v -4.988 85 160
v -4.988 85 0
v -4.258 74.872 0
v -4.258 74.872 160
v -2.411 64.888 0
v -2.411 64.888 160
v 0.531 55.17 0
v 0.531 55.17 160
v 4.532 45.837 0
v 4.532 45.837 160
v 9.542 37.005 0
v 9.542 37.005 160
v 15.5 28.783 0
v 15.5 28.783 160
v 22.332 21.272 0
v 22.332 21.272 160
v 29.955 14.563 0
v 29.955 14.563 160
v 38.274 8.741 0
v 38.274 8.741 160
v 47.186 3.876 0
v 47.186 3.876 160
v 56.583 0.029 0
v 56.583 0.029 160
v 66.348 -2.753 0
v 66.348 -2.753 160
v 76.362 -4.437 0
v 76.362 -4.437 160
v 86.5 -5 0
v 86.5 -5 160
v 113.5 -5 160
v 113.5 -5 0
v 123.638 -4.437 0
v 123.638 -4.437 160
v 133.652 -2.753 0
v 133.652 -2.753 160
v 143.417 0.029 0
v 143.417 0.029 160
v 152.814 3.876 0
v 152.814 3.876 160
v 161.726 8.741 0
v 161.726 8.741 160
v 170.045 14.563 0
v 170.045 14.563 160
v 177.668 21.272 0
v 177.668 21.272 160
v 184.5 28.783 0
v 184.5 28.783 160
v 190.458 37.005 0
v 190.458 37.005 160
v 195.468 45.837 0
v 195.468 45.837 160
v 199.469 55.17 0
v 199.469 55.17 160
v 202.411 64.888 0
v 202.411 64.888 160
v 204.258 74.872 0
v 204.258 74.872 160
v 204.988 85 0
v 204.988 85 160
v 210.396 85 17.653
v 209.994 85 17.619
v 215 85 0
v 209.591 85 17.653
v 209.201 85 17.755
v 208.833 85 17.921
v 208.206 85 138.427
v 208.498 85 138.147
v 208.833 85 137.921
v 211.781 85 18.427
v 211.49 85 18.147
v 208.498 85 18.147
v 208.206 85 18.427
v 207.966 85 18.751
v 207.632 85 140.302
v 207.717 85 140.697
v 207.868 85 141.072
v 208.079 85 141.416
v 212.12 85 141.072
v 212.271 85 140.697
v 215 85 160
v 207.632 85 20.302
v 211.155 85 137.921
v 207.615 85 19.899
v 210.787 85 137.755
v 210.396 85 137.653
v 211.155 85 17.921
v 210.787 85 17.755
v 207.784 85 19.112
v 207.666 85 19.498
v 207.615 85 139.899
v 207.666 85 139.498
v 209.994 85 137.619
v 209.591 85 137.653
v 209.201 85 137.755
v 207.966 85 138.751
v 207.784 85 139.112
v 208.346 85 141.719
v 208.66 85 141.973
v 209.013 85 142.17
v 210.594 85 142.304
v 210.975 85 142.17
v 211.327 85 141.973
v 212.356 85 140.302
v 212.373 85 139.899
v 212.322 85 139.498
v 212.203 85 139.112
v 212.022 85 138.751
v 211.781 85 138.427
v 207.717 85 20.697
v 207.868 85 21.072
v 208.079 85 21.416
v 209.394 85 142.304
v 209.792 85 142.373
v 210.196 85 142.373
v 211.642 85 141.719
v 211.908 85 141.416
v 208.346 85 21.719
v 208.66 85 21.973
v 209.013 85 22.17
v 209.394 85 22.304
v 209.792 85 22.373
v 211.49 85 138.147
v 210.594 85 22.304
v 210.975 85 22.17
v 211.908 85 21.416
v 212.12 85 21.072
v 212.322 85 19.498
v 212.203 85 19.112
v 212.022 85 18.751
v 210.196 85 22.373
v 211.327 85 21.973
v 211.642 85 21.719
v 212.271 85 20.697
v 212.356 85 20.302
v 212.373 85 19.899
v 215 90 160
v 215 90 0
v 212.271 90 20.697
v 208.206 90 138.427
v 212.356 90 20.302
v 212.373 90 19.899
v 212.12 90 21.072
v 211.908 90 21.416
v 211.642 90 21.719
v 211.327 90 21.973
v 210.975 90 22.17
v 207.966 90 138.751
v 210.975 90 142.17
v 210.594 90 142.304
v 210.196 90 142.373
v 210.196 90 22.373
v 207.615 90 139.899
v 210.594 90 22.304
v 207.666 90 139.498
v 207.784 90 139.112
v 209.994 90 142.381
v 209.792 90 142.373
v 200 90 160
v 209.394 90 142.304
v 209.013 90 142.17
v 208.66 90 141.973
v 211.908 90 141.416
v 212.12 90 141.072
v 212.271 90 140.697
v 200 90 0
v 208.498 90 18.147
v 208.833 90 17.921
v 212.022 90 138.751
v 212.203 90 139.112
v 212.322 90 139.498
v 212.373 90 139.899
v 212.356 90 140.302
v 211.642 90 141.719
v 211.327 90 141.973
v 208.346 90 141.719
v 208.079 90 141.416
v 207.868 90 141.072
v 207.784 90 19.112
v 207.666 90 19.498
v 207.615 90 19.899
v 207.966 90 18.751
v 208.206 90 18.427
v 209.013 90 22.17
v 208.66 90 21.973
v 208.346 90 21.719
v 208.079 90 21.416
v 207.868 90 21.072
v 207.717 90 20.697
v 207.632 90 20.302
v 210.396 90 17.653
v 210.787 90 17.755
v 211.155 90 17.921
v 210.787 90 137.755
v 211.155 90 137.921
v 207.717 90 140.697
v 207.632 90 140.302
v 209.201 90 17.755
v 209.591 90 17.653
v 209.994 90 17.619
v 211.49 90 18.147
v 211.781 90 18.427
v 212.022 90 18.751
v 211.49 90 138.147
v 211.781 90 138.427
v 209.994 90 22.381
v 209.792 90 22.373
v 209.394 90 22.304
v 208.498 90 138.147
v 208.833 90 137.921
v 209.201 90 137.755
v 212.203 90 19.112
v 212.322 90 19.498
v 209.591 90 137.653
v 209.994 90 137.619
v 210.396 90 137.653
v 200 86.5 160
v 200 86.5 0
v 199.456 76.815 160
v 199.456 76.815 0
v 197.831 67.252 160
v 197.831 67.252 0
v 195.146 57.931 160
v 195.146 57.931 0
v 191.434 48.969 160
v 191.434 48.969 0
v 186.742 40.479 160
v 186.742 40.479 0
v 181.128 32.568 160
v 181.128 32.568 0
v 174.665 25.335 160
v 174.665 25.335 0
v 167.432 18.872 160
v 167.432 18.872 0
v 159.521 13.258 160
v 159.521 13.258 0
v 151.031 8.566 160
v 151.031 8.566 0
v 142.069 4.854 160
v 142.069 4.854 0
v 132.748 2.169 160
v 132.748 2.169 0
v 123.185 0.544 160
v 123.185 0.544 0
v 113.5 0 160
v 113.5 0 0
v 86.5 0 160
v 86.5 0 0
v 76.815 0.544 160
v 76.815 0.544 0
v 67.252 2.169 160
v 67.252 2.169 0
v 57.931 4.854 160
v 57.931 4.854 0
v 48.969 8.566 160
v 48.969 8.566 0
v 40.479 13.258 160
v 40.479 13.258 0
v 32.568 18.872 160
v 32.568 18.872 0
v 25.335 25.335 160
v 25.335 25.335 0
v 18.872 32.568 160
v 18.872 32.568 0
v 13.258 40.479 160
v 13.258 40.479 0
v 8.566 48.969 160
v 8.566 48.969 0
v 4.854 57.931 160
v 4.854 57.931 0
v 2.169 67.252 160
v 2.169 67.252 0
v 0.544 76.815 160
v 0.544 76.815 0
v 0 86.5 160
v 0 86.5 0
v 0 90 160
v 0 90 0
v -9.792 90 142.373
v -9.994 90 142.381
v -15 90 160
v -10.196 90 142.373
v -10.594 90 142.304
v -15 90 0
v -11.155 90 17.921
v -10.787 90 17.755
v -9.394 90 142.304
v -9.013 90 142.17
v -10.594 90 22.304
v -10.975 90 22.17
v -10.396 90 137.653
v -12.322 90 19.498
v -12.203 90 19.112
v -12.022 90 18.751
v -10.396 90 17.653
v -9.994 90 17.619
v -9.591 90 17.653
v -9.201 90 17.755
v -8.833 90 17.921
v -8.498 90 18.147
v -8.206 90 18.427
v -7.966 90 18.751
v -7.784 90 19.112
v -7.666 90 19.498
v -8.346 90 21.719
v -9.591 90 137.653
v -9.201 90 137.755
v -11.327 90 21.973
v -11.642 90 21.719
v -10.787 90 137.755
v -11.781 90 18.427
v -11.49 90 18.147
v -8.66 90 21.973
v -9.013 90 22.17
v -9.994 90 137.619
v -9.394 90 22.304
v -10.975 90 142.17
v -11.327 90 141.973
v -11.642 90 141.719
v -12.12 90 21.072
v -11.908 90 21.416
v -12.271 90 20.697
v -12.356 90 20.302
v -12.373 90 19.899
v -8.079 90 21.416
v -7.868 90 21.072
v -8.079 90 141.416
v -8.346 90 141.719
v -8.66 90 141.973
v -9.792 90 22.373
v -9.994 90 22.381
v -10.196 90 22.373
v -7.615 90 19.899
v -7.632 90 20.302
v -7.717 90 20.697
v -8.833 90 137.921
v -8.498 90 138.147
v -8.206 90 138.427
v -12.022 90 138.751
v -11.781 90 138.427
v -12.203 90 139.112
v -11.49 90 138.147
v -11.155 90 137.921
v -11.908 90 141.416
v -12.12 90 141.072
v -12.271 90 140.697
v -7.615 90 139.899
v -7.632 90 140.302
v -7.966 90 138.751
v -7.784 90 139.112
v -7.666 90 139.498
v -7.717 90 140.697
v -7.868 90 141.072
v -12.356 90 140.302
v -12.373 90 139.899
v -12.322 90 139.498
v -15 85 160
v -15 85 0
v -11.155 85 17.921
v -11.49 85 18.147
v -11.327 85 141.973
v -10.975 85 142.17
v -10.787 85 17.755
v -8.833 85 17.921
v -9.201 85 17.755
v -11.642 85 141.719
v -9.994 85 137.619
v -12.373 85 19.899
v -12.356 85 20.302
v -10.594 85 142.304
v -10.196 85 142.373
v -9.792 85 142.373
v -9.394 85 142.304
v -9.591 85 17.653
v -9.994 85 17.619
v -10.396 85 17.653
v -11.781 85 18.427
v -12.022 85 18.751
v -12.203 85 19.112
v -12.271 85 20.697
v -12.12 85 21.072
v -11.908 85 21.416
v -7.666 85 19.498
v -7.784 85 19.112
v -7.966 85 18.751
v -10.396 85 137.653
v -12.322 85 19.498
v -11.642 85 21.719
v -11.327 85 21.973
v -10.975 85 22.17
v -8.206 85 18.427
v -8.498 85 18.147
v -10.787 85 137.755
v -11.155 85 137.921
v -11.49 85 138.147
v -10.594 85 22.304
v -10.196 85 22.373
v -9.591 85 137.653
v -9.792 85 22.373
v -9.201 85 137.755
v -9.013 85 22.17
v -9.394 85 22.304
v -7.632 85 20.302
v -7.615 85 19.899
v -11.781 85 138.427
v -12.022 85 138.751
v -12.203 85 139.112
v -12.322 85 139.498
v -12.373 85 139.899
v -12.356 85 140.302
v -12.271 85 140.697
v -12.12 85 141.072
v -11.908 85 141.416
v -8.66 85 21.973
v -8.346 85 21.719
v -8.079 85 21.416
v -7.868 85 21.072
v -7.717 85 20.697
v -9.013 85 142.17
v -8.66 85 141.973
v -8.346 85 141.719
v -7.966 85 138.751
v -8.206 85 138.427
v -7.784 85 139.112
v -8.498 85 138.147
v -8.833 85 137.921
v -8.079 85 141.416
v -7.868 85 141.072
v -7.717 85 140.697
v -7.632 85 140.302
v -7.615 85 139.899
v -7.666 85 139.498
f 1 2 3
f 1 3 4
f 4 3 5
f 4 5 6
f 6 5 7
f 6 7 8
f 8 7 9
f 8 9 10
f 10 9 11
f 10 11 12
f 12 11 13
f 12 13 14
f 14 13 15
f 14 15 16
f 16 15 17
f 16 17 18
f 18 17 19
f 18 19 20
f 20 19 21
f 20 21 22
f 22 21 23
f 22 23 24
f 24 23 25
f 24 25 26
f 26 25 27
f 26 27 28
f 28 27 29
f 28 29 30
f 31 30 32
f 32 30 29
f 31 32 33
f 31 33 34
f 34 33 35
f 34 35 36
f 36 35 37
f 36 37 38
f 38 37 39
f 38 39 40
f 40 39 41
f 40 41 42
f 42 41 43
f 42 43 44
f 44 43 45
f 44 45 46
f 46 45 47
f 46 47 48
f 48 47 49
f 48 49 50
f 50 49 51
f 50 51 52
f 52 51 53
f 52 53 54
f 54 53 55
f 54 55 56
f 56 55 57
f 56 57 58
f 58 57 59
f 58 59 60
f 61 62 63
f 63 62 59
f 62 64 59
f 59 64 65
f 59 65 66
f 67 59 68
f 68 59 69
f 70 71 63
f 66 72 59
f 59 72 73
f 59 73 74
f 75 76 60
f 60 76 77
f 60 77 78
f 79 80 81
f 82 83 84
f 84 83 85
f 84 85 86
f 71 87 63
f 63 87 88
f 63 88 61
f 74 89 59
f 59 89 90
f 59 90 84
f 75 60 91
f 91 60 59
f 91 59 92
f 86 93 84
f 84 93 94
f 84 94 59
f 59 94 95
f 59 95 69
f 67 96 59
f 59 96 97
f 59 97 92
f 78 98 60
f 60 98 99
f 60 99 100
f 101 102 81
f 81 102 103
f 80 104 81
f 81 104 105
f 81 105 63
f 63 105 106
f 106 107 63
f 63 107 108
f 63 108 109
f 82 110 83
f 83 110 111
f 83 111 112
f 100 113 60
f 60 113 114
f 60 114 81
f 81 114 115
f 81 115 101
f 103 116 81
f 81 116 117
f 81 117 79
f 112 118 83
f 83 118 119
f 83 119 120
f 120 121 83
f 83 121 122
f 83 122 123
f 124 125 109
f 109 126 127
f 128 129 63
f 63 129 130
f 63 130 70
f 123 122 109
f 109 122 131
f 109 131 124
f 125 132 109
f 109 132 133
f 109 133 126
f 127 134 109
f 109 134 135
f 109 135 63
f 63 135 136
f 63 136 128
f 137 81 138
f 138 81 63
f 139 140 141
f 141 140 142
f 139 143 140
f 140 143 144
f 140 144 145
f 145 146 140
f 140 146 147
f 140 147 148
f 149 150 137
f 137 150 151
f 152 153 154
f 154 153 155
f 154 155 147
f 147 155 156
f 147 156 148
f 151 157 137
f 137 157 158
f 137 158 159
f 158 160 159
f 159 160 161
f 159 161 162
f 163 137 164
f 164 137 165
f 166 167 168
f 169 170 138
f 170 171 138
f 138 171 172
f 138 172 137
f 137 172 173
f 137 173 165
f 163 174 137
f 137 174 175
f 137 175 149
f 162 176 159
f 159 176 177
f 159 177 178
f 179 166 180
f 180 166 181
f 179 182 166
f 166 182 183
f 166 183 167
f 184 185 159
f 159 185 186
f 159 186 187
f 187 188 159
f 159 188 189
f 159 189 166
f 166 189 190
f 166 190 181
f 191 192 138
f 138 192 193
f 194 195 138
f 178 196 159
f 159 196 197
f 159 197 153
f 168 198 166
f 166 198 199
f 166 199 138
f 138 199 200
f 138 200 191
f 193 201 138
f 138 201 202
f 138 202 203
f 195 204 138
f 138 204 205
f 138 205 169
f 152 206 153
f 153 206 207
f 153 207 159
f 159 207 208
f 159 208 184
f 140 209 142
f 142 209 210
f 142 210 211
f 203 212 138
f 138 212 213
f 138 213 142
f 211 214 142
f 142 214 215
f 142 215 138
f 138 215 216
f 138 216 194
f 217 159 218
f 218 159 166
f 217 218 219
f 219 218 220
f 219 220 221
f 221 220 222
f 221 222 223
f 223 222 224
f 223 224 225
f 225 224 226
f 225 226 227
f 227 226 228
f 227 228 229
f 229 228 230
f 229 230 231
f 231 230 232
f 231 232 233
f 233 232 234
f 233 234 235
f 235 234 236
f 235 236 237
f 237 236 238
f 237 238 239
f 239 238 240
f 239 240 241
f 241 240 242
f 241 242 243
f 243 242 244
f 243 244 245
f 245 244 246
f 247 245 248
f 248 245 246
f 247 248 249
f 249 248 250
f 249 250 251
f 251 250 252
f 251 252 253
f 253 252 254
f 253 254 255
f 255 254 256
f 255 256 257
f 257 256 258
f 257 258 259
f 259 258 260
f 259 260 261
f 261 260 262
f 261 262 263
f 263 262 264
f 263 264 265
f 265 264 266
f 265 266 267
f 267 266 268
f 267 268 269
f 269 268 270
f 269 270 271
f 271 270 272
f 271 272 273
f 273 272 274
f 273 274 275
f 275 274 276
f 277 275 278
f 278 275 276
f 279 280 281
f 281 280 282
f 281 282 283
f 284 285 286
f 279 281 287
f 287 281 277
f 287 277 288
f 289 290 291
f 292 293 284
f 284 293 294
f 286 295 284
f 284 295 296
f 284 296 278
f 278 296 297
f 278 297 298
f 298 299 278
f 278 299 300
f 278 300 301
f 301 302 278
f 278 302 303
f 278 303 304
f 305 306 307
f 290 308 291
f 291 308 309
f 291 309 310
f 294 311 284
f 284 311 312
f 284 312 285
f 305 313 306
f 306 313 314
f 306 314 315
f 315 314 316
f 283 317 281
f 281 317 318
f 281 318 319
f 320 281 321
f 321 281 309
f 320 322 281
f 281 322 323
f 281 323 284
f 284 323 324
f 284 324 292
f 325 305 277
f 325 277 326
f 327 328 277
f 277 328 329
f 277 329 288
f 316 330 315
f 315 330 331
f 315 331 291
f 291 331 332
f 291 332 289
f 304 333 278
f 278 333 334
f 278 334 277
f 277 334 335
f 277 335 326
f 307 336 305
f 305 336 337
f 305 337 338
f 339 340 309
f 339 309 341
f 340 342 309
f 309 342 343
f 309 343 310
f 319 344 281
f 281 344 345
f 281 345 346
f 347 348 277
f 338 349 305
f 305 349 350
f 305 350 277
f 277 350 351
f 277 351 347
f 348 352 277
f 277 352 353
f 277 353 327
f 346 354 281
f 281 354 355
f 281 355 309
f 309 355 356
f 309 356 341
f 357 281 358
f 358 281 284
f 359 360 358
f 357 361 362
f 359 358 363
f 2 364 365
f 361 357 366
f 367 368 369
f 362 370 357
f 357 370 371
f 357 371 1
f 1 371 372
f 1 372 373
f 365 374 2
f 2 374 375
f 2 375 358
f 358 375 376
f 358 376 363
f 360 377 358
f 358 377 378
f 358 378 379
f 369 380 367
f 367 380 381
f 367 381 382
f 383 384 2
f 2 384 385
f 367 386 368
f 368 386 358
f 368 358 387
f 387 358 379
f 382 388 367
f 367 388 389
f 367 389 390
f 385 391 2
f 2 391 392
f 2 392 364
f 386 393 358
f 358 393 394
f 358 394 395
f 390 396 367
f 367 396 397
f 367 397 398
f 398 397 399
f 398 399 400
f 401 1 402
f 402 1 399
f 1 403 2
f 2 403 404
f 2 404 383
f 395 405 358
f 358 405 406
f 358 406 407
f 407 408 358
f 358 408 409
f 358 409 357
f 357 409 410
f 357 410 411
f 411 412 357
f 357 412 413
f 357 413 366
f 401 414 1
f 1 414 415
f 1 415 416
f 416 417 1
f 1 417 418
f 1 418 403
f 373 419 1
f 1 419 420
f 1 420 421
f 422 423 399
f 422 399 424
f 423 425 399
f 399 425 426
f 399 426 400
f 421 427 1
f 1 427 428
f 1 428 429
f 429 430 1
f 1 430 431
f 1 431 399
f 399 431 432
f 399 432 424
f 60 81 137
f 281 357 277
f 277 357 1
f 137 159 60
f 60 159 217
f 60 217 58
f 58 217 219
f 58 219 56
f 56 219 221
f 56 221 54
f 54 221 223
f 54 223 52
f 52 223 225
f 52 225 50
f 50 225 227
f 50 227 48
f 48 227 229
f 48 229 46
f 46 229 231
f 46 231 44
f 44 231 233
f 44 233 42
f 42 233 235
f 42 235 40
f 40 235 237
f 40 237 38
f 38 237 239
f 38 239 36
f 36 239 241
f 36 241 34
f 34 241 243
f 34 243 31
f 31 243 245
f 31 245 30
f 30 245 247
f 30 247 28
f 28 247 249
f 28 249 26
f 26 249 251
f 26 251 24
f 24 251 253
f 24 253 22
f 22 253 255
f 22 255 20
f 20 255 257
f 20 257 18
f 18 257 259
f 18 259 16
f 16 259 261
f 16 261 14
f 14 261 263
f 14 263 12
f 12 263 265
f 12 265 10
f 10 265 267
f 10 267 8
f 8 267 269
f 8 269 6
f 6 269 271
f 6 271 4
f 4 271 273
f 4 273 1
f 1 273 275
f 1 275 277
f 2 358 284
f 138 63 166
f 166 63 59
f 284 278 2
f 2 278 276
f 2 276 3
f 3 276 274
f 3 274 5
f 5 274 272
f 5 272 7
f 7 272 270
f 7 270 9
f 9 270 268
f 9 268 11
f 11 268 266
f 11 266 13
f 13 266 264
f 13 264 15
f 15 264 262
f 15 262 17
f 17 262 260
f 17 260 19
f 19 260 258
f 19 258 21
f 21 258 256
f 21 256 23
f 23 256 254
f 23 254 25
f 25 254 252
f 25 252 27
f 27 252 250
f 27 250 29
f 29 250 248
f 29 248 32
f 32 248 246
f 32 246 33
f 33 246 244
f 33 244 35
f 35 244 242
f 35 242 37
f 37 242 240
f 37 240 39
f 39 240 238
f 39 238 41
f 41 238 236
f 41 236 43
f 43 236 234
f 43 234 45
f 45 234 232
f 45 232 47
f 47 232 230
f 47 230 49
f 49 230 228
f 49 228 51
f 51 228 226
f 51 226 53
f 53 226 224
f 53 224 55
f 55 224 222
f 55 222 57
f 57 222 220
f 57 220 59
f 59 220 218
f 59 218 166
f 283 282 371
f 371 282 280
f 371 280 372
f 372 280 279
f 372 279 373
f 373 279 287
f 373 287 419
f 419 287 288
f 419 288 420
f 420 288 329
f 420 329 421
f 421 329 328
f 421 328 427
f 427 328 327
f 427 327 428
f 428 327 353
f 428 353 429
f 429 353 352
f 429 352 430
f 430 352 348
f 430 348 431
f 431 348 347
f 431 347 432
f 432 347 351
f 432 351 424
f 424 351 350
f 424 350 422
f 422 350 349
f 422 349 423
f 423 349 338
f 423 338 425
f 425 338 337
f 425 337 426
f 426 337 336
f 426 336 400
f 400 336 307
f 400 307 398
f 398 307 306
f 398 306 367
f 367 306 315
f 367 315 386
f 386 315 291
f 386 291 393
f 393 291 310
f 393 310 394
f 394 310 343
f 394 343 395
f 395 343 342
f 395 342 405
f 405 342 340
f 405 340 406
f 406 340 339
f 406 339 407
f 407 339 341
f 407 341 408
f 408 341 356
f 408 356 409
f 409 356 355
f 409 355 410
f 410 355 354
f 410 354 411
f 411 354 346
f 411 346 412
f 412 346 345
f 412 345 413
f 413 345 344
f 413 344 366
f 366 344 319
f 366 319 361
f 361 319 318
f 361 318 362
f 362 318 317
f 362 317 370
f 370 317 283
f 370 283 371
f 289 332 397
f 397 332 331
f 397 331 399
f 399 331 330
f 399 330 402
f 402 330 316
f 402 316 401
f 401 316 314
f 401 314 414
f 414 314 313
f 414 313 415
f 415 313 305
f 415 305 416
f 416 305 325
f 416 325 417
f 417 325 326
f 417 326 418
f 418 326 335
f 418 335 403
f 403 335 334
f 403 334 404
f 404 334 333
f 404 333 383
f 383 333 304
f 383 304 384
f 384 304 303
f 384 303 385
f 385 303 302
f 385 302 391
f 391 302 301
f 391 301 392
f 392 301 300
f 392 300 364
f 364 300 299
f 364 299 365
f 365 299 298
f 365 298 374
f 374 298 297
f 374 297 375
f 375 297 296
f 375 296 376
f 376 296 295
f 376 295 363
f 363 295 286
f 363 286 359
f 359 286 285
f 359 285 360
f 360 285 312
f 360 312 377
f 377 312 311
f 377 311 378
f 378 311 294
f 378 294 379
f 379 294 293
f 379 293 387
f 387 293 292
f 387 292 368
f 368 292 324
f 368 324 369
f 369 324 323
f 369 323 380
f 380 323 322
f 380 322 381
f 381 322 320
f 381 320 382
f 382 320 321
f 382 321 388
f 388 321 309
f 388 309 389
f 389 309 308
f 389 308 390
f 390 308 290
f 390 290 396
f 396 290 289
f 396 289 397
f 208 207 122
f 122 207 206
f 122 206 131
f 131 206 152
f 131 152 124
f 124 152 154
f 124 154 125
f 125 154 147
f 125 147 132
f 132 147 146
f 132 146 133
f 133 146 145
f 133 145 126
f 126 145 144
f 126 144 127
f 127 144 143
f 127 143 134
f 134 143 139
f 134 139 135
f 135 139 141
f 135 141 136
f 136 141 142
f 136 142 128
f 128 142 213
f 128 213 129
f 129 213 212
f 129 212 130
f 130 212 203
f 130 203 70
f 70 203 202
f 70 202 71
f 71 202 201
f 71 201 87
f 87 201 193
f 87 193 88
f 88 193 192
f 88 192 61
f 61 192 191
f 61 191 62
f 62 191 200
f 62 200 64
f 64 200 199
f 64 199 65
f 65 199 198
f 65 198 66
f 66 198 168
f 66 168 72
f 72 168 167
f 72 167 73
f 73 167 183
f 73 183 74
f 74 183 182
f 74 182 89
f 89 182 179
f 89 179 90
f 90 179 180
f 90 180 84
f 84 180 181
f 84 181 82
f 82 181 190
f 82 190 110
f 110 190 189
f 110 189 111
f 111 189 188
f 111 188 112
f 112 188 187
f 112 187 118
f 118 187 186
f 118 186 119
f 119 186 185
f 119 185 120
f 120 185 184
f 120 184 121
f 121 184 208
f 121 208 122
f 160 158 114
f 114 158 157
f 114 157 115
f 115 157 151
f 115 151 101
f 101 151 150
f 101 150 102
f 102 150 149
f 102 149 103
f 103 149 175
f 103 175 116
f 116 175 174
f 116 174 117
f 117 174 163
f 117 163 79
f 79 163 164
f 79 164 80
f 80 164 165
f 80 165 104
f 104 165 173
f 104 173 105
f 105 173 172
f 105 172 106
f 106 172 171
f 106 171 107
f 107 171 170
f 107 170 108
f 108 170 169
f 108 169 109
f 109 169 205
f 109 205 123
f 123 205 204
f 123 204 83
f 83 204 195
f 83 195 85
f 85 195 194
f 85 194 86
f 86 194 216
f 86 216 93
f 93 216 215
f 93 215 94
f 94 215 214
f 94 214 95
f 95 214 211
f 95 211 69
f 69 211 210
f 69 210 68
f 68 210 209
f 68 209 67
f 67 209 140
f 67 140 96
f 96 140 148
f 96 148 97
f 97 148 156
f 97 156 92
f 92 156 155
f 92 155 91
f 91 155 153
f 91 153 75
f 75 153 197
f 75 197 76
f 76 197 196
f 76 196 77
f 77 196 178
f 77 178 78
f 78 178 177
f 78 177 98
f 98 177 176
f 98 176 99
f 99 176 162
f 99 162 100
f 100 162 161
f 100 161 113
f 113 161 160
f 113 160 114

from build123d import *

# Parameters (mm, degrees)
BOSS_EXTRUDE1_DEPTH = 160
SKETCH2_R           = 2.38125
CUT_EXTRUDE1_DEPTH  = 160


with BuildPart() as part:
    # Sketch1 → Boss-Extrude1 (new body)
    with BuildSketch(Plane.XY):
        with BuildLine():
            Line((113.5, 0), (86.5, 0))
            ThreePointArc((86.5, 0), (25.335263427, 25.335263427), (0, 86.5))
            Line((0, 86.5), (0, 90))
            Line((0, 90), (-15, 90))
            Line((-15, 90), (-15, 85))
            Line((-15, 85), (-4.987704092, 85))
            ThreePointArc((-4.987704092, 85), (22.332251091, 21.271555285), (86.5, -5))
            Line((86.5, -5), (113.5, -5))
            ThreePointArc((113.5, -5), (177.667748909, 21.271555285), (204.987704092, 85))
            Line((204.987704092, 85), (215, 85))
            Line((215, 85), (215, 90))
            Line((215, 90), (200, 90))
            Line((200, 90), (200, 86.5))
            ThreePointArc((200, 86.5), (174.664736573, 25.335263427), (113.5, 0))
        make_face()
    extrude(amount=BOSS_EXTRUDE1_DEPTH)

    # Sketch2 → Cut-Extrude1 (cut)
    with BuildSketch(Plane.XZ.offset(-85)):
        with BuildLine():
            ThreePointArc((-9.993852046, 142.38125), (-12.375102046, 140), (-9.993852046, 137.61875))
            Line((-9.993852046, 137.61875), (-9.993852046, 142.38125))
        make_face()
        with BuildLine():
            Line((-9.993852046, 142.38125), (-9.993852046, 137.61875))
            ThreePointArc((-9.993852046, 137.61875), (-8.310054023, 138.316201977), (-7.612602046, 140))
            ThreePointArc((-7.612602046, 140), (-8.310054023, 141.683798023), (-9.993852046, 142.38125))
        make_face()
        with Locations((-9.993852046, 20)):
            Circle(SKETCH2_R)
        with Locations((209.993852046, 20)):
            Circle(SKETCH2_R)
        with Locations((209.993852046, 140)):
            Circle(SKETCH2_R)
    extrude(amount=-CUT_EXTRUDE1_DEPTH, mode=Mode.SUBTRACT)


solid = part.part
